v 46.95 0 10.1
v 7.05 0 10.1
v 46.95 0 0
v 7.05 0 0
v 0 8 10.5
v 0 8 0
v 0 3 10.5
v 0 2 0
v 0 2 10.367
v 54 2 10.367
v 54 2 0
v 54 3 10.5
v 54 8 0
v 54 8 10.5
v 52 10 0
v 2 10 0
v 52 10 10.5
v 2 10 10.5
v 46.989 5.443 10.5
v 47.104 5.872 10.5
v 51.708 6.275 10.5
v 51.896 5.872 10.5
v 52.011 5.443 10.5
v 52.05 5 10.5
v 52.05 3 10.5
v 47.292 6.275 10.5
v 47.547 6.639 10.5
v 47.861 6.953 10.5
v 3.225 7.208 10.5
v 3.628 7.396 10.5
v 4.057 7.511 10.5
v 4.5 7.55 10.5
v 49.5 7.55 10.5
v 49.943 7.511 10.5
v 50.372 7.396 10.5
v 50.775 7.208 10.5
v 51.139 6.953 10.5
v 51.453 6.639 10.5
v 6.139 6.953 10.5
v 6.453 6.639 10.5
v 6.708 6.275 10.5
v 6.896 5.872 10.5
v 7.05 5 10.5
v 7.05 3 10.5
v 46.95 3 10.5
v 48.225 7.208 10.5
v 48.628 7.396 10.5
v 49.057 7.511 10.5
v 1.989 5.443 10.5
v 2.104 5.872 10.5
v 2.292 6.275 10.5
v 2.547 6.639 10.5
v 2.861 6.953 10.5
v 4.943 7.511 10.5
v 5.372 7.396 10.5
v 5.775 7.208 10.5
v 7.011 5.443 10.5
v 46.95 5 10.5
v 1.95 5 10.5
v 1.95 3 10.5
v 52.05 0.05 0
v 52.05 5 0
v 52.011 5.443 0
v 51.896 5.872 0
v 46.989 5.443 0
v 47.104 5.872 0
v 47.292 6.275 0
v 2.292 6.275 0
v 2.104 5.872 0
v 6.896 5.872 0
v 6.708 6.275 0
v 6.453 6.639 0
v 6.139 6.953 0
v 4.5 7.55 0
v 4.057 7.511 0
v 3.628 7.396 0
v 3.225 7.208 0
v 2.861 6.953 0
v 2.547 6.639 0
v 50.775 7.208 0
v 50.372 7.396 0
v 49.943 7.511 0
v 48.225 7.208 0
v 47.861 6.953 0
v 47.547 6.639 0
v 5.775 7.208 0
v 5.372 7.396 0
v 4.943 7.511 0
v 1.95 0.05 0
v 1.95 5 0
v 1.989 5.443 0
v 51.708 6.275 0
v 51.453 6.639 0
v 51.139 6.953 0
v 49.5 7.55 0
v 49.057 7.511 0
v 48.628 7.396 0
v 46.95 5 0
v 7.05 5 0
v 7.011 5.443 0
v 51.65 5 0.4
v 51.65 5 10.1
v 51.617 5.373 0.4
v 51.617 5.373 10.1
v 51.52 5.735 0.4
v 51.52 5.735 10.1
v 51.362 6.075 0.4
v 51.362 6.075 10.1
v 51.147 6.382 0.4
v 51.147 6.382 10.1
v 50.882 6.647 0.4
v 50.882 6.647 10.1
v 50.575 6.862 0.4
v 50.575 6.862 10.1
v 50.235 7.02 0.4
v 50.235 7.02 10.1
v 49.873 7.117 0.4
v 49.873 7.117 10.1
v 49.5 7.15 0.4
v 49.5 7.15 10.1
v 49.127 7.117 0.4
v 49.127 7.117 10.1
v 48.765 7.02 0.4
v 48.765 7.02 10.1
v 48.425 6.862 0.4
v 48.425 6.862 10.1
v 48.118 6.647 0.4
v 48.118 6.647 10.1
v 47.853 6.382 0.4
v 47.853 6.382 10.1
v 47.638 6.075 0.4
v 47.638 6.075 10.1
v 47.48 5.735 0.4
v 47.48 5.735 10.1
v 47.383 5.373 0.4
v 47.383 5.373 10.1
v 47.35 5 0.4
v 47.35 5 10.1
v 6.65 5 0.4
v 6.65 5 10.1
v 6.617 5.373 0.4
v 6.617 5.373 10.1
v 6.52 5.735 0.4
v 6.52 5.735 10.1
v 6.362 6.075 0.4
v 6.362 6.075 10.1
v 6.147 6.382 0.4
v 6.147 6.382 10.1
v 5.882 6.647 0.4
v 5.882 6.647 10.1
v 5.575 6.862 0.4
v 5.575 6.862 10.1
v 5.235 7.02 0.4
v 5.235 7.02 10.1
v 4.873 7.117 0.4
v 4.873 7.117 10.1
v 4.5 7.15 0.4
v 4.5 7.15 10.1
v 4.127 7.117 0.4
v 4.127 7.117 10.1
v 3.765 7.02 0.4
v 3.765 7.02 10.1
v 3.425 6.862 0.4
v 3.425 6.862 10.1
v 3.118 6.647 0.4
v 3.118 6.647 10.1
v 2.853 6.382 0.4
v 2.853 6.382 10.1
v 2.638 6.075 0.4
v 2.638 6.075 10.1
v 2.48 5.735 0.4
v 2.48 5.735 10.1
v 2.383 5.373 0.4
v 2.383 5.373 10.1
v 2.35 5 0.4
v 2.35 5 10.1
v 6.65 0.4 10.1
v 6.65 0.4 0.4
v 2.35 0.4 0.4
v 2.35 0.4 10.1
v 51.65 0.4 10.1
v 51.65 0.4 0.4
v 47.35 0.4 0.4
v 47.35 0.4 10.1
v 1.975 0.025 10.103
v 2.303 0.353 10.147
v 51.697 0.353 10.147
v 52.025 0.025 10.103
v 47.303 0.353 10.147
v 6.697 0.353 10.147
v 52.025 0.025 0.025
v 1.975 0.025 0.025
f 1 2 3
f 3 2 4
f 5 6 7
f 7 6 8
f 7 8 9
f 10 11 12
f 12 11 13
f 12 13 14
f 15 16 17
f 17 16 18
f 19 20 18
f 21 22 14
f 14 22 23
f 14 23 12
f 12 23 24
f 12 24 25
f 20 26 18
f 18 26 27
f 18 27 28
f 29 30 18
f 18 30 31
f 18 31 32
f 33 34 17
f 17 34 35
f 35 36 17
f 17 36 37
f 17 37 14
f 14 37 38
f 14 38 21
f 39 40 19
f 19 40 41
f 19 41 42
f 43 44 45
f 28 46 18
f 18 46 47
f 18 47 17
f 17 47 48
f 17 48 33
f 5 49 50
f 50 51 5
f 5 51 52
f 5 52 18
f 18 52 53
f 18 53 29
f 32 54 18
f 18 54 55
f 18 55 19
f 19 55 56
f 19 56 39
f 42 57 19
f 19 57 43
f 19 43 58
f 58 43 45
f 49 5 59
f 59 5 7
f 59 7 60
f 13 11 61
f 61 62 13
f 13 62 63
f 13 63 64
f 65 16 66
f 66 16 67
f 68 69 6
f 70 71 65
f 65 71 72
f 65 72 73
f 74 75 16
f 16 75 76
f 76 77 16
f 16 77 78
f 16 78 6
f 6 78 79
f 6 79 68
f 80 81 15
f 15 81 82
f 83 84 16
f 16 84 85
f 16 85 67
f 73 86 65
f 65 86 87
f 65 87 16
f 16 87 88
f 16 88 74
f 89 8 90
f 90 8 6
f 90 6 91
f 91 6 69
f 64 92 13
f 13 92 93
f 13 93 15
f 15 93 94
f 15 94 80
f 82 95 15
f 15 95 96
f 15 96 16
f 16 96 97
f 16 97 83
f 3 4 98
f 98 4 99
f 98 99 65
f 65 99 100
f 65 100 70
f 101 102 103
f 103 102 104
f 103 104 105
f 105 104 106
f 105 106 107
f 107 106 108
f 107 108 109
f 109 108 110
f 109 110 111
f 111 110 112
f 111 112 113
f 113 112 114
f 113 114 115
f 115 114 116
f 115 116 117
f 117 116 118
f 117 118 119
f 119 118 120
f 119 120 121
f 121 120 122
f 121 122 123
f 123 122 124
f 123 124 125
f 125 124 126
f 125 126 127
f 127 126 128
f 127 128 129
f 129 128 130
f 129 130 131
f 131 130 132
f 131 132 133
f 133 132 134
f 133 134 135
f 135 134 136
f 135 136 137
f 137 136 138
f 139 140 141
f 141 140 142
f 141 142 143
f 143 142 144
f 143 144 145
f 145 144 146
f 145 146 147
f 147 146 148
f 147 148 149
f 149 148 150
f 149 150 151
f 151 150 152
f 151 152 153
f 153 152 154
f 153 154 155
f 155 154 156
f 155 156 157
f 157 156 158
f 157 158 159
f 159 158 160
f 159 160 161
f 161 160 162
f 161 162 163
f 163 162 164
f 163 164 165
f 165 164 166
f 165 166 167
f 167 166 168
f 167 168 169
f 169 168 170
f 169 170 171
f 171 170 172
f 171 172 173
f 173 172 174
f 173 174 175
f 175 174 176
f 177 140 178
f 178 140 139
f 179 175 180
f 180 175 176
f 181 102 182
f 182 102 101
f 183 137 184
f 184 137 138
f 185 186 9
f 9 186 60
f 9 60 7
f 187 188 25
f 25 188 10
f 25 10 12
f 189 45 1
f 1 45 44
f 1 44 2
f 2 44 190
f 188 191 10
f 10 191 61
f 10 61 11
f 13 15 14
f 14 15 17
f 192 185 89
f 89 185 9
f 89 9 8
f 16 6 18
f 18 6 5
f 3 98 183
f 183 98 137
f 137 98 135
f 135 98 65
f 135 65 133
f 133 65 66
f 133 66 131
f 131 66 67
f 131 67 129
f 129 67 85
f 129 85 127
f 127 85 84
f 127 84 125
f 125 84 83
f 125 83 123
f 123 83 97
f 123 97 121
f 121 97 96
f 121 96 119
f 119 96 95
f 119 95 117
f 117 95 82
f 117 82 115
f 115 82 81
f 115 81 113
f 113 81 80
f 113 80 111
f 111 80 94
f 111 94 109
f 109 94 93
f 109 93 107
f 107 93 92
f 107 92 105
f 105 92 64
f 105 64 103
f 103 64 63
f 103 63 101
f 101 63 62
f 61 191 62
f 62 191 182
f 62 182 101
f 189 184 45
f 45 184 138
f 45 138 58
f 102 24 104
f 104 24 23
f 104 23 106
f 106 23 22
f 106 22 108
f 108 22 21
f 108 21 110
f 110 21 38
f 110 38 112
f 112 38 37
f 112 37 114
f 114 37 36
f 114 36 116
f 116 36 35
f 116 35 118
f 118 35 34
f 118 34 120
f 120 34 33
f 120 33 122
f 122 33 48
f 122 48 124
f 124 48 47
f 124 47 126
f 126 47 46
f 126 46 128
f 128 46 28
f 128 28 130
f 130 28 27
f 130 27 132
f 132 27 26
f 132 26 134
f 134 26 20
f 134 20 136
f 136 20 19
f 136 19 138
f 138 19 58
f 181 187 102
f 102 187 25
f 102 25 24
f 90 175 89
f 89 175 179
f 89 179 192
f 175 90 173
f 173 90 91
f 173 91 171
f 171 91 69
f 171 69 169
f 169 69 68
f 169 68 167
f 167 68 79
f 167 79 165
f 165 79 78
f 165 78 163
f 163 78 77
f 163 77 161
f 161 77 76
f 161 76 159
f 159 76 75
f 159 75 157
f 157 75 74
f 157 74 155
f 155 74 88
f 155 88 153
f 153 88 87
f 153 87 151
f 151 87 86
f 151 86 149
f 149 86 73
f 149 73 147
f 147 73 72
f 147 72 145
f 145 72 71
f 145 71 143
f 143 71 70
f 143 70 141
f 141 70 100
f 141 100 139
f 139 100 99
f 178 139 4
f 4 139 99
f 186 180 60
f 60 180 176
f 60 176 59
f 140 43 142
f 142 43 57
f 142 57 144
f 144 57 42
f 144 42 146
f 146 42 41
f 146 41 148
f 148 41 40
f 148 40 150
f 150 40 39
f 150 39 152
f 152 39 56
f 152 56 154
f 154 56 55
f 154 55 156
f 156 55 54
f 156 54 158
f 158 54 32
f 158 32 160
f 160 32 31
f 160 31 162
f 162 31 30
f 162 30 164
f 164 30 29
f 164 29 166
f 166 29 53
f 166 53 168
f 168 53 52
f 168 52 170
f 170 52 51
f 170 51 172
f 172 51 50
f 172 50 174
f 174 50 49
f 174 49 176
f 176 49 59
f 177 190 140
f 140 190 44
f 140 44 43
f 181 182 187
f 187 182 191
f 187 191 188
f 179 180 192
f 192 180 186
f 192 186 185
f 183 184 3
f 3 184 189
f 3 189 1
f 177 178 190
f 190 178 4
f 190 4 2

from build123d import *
from OCP.BRepFilletAPI import BRepFilletAPI_MakeChamfer

# Parameters (mm, degrees)
SKETCH1_W           = 54
SKETCH1_H           = 10
BOSS_EXTRUDE1_DEPTH = 10.5
SKETCH2_R           = 2.15
CUT_EXTRUDE1_DEPTH  = 10.5
SKETCH3_W           = 4.3
SKETCH3_H           = 5
CUT_EXTRUDE2_DEPTH  = 10.5
CHAMFER3_SIZE       = 0.4
CHAMFER3_SIZE2      = 3
CHAMFER1_SIZE       = 2
CHAMFER2_SIZE       = 0.4
CHAMFER4_SIZE       = 0.4


with BuildPart() as part:
    # Sketch1 → Boss-Extrude1 (new body)
    with BuildSketch(Plane.XY):
        with Locations((27, 5)):
            Rectangle(SKETCH1_W, SKETCH1_H)
    extrude(amount=BOSS_EXTRUDE1_DEPTH)

    # Sketch2 → Cut-Extrude1 (cut)
    with BuildSketch(Plane.XY.offset(10.5)):
        with Locations((4.5, 5)):
            Circle(SKETCH2_R)
        with Locations((49.5, 5)):
            Circle(SKETCH2_R)
    extrude(amount=-CUT_EXTRUDE1_DEPTH, mode=Mode.SUBTRACT)

    # Sketch3 → Cut-Extrude2 (cut)
    with BuildSketch(Plane.XY.offset(10.5)):
        with Locations((4.5, 2.5)):
            Rectangle(SKETCH3_W, SKETCH3_H)
        with Locations((49.5, 2.5)):
            Rectangle(SKETCH3_W, SKETCH3_H)
    extrude(amount=-CUT_EXTRUDE2_DEPTH, mode=Mode.SUBTRACT)

    # Chamfer3: one chamfer whose edges measure the first distance from different faces: ONE call of the kernel's chamfer builder (chamfer() names one face for all edges)
    chamfer3_edges_1 = [part.edges().sort_by_distance(p)[0] for p in [
        (27, 0, 10.5),
    ]]
    chamfer3_side_1 = [part.faces().sort_by_distance(p)[0] for p in [
        (27, 0, 5.25),
    ]]
    chamfer3_edges_2 = [part.edges().sort_by_distance(p)[0] for p in [
        (52.825, 0, 10.5),
    ]]
    chamfer3_side_2 = [part.faces().sort_by_distance(p)[0] for p in [
        (52.825, 0, 5.25),
    ]]
    chamfer3_edges_3 = [part.edges().sort_by_distance(p)[0] for p in [
        (1.175, 0, 10.5),
    ]]
    chamfer3_side_3 = [part.faces().sort_by_distance(p)[0] for p in [
        (1.175, 0, 5.25),
    ]]
    chamfer3 = BRepFilletAPI_MakeChamfer(part.part.solid().wrapped)
    for e in chamfer3_edges_1:
        chamfer3.Add(CHAMFER3_SIZE, CHAMFER3_SIZE2, e.wrapped, chamfer3_side_1[0].wrapped)  # the first distance lies on this face
    for e in chamfer3_edges_2:
        chamfer3.Add(CHAMFER3_SIZE, CHAMFER3_SIZE2, e.wrapped, chamfer3_side_2[0].wrapped)  # the first distance lies on this face
    for e in chamfer3_edges_3:
        chamfer3.Add(CHAMFER3_SIZE, CHAMFER3_SIZE2, e.wrapped, chamfer3_side_3[0].wrapped)  # the first distance lies on this face
    add(Compound.cast(chamfer3.Shape()), mode=Mode.REPLACE)

    # Chamfer1
    chamfer1_edges = [part.edges().sort_by_distance(p)[0] for p in [
        (0, 0, 5.05),
        (54, 0, 5.05),
        (0, 10, 5.25),
        (54, 10, 5.25),
    ]]
    chamfer(chamfer1_edges, length=CHAMFER1_SIZE)

    # Chamfer2
    chamfer2_edges = [part.edges().sort_by_distance(p)[0] for p in [
        (49.5, 7.15, 10.5),
        (49.5, 7.15, 0),
        (4.5, 7.15, 10.5),
        (4.5, 7.15, 0),
        (51.65, 2.5, 0),
        (47.35, 2.5, 0),
        (51.65, 4, 10.5),
        (47.35, 4, 10.5),
        (6.65, 2.5, 0),
        (2.35, 2.5, 0),
        (6.65, 4, 10.5),
        (2.35, 4, 10.5),
    ]]
    chamfer(chamfer2_edges, length=CHAMFER2_SIZE)

    # Chamfer4
    # the kernel refuses this chamfer: 0.4 mm, written as the material it takes off along each edge
    with BuildSketch(Plane(origin=(47.35, 0, 11.128673195), x_dir=(-0.9996219169112968, -0.02749587661058673, 0), z_dir=(0, 0, -1)), Plane(origin=(2.35, 0, 11.128673195), x_dir=(-0.9996219169112968, -0.027495876610586386, 0), z_dir=(0, 0, -1))) as chamfer4_piece_1:
        Polygon((CHAMFER4_SIZE * 0.999621916911, CHAMFER4_SIZE * 0.0274958766106), (-CHAMFER4_SIZE * 0.0274958766106, CHAMFER4_SIZE * 0.999621916911), (0, 0), align=None)
    extrude(amount=11.75734639, mode=Mode.SUBTRACT)
    with BuildSketch(Plane(origin=(6.65, 0, 11.128673195), x_dir=(0.9996219169112968, -0.027495876610586324, 0), z_dir=(0, 0, -1)), Plane(origin=(51.65, 0, 11.128673195), x_dir=(0.9996219169112968, -0.02749587661058674, 0), z_dir=(0, 0, -1))) as chamfer4_piece_2:
        Polygon((CHAMFER4_SIZE * 0.999621916911, -CHAMFER4_SIZE * 0.0274958766106), (-CHAMFER4_SIZE * 0.0274958766106, -CHAMFER4_SIZE * 0.999621916911), (0, 0), align=None)
    extrude(amount=11.75734639, mode=Mode.SUBTRACT)


solid = part.part
